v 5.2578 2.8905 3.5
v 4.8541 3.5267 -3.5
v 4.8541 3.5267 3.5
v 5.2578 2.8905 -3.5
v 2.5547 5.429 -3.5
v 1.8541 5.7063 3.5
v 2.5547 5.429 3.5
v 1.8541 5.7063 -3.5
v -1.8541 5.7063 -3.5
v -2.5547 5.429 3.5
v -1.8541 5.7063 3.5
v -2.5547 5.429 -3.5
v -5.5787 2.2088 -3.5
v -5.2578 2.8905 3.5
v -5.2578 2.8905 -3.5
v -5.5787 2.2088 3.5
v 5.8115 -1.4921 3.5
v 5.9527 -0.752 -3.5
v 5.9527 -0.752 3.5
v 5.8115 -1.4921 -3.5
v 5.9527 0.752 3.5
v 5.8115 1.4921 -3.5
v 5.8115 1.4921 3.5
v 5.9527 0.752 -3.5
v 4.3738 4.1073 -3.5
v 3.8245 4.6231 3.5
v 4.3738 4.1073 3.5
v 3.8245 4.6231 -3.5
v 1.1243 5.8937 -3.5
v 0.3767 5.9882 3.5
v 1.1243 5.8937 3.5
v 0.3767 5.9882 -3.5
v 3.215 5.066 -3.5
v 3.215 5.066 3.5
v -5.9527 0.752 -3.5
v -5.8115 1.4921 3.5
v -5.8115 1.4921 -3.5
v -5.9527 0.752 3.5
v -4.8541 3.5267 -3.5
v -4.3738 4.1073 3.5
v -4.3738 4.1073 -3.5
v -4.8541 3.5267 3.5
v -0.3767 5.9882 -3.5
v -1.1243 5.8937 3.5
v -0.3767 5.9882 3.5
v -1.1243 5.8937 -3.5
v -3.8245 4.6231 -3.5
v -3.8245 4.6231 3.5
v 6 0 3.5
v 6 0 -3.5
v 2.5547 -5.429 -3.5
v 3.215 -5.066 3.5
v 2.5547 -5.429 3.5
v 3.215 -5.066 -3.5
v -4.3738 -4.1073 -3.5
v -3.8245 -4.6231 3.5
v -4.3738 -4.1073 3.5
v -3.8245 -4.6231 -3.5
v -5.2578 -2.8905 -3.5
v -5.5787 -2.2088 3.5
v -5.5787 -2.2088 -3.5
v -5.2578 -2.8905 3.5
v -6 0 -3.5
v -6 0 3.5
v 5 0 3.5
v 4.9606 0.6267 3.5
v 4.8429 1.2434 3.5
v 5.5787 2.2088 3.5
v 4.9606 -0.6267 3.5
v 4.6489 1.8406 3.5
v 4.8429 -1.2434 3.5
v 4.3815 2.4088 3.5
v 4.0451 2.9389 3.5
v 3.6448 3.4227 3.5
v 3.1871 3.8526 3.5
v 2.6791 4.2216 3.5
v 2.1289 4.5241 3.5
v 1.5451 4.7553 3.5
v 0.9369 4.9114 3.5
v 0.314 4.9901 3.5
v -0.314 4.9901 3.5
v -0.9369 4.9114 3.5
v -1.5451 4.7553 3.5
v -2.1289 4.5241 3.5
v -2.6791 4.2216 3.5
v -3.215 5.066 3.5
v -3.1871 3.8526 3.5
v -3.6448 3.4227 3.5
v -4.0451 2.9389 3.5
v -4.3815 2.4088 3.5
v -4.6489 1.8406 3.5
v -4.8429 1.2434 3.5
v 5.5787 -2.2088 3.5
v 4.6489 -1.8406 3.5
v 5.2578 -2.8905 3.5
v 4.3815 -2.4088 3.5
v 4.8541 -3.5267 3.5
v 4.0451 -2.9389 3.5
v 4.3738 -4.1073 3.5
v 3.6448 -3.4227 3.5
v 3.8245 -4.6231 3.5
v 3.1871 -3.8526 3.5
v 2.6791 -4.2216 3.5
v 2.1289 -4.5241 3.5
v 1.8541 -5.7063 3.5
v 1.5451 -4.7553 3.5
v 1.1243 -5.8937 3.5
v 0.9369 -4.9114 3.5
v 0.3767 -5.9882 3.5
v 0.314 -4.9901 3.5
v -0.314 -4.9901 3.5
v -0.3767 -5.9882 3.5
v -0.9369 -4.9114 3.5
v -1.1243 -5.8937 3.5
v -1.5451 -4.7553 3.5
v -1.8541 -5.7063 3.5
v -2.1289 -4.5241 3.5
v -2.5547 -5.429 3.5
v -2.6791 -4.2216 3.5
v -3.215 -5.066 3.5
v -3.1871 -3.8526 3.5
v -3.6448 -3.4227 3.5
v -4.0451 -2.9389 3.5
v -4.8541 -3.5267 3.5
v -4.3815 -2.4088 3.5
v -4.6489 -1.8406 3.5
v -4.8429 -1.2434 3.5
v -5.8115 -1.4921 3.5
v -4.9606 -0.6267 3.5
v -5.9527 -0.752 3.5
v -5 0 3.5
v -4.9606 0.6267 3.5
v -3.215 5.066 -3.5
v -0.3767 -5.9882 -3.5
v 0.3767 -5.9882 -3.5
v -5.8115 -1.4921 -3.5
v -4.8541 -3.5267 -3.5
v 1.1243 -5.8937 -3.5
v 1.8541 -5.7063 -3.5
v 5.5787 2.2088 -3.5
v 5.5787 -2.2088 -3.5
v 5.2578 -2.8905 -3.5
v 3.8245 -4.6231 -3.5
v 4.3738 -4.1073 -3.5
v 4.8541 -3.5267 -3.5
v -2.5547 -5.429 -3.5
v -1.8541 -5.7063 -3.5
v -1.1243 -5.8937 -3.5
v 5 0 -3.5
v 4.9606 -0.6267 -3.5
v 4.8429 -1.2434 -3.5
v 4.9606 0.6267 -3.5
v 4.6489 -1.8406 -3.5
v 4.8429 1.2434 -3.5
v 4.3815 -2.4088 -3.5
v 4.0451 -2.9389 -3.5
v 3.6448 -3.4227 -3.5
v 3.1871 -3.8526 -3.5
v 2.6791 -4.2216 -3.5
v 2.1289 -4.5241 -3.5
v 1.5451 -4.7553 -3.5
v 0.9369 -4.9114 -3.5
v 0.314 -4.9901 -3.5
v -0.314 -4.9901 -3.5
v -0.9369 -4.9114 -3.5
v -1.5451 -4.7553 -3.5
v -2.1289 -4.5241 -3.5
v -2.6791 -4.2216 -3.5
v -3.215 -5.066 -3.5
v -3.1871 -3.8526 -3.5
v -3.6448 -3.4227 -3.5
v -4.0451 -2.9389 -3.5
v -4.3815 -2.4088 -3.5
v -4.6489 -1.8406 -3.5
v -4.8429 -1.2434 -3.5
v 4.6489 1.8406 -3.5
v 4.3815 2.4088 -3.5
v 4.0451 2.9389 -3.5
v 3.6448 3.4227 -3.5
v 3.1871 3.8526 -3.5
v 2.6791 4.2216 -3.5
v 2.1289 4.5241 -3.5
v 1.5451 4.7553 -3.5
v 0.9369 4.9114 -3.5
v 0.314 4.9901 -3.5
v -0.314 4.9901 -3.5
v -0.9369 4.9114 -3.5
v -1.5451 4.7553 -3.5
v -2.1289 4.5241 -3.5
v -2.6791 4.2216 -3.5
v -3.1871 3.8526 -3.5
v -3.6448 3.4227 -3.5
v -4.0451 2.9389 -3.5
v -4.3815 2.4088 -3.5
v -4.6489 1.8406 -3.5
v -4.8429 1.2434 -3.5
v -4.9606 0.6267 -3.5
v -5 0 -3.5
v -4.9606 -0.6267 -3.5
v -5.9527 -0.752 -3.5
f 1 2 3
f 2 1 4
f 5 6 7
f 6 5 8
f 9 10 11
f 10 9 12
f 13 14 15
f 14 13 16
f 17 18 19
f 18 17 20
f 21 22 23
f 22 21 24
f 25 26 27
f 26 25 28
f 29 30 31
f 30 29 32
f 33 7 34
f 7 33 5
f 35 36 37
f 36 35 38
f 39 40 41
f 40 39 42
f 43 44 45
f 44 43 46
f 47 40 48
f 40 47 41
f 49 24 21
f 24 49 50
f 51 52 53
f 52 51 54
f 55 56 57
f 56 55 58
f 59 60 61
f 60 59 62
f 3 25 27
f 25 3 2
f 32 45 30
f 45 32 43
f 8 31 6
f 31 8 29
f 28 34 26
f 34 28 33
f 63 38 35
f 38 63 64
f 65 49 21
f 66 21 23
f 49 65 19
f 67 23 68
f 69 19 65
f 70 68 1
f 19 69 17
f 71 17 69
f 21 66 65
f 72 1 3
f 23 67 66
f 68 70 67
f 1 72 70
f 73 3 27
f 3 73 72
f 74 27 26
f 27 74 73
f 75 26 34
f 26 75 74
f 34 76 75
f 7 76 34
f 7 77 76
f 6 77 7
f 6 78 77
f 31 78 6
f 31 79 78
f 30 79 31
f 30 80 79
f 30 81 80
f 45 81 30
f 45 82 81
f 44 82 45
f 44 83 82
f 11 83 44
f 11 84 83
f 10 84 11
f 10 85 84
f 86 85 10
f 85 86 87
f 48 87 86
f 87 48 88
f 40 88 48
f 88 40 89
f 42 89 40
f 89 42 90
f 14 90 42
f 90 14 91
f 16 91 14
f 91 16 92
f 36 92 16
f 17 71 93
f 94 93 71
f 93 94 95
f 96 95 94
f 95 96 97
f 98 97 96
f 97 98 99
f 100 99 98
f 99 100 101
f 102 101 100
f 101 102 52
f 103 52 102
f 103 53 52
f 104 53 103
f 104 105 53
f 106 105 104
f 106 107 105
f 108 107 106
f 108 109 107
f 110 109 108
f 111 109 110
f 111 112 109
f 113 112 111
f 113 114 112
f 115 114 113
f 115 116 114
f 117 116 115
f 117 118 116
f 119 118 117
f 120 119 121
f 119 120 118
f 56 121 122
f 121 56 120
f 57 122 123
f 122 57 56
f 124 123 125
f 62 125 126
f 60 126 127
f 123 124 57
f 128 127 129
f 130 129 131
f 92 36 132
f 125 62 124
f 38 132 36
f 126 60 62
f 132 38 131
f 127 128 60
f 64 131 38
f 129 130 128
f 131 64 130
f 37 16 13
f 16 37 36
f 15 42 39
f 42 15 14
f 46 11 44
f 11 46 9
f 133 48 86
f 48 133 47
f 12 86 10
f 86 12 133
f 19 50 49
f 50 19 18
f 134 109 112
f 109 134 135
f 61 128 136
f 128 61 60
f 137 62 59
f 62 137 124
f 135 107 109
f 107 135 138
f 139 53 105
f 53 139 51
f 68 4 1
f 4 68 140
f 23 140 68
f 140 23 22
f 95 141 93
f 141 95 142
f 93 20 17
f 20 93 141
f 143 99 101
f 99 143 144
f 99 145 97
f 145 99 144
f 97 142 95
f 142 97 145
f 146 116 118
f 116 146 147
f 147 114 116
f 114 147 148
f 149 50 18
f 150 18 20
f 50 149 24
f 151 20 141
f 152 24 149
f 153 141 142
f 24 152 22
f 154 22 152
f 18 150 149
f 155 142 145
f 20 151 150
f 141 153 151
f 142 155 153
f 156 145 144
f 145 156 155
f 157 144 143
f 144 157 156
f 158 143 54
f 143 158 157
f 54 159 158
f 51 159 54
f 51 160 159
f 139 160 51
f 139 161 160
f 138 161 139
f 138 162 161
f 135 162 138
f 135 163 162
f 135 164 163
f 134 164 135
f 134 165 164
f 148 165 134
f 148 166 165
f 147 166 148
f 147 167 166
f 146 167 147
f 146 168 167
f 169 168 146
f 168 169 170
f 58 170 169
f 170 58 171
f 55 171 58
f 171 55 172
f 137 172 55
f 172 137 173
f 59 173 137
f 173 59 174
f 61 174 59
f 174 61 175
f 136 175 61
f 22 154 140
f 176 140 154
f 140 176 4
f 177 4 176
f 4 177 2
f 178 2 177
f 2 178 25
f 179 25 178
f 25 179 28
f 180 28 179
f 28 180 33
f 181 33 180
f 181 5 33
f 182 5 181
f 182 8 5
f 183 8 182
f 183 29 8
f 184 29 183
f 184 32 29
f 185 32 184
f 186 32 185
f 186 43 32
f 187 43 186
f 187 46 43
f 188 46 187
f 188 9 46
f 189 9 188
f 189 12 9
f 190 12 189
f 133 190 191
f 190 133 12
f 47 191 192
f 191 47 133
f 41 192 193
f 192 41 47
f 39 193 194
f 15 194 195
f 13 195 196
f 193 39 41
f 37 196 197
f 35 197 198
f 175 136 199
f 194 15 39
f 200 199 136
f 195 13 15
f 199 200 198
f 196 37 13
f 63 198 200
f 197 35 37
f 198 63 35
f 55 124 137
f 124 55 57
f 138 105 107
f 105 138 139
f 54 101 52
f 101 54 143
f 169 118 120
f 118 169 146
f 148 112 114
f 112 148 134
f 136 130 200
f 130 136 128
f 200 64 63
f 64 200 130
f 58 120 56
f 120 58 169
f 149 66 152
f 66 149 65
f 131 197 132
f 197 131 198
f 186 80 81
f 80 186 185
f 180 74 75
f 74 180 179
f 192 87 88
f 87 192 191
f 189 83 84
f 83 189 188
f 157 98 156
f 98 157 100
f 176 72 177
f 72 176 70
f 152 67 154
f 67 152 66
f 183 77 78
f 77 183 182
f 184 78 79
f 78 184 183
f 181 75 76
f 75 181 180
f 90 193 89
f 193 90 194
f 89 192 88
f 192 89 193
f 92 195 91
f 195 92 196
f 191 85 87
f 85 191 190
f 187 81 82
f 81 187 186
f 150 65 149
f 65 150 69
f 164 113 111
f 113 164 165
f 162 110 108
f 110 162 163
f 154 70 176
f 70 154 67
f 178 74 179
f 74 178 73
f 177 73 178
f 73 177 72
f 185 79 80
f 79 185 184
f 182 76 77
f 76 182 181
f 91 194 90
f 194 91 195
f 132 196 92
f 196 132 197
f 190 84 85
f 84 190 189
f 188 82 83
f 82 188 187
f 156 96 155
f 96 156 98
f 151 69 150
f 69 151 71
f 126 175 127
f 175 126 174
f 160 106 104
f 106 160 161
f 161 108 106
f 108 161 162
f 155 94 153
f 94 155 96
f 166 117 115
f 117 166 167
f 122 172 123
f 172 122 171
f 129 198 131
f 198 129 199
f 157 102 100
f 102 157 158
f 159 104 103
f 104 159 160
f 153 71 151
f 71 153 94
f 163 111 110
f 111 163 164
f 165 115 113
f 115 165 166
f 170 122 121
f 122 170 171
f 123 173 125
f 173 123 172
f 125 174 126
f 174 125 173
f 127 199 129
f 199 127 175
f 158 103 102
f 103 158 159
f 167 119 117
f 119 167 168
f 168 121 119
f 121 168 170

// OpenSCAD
$fn = 50;


difference() {
	union() {
		translate(v = [0, 0, -3.5000000000]) {
			cylinder(h = 7, r = 6.0000000000);
		}
	}
	union() {
		translate(v = [0, 0, -100.0000000000]) {
			cylinder(h = 200, r = 5);
		}
	}
}
